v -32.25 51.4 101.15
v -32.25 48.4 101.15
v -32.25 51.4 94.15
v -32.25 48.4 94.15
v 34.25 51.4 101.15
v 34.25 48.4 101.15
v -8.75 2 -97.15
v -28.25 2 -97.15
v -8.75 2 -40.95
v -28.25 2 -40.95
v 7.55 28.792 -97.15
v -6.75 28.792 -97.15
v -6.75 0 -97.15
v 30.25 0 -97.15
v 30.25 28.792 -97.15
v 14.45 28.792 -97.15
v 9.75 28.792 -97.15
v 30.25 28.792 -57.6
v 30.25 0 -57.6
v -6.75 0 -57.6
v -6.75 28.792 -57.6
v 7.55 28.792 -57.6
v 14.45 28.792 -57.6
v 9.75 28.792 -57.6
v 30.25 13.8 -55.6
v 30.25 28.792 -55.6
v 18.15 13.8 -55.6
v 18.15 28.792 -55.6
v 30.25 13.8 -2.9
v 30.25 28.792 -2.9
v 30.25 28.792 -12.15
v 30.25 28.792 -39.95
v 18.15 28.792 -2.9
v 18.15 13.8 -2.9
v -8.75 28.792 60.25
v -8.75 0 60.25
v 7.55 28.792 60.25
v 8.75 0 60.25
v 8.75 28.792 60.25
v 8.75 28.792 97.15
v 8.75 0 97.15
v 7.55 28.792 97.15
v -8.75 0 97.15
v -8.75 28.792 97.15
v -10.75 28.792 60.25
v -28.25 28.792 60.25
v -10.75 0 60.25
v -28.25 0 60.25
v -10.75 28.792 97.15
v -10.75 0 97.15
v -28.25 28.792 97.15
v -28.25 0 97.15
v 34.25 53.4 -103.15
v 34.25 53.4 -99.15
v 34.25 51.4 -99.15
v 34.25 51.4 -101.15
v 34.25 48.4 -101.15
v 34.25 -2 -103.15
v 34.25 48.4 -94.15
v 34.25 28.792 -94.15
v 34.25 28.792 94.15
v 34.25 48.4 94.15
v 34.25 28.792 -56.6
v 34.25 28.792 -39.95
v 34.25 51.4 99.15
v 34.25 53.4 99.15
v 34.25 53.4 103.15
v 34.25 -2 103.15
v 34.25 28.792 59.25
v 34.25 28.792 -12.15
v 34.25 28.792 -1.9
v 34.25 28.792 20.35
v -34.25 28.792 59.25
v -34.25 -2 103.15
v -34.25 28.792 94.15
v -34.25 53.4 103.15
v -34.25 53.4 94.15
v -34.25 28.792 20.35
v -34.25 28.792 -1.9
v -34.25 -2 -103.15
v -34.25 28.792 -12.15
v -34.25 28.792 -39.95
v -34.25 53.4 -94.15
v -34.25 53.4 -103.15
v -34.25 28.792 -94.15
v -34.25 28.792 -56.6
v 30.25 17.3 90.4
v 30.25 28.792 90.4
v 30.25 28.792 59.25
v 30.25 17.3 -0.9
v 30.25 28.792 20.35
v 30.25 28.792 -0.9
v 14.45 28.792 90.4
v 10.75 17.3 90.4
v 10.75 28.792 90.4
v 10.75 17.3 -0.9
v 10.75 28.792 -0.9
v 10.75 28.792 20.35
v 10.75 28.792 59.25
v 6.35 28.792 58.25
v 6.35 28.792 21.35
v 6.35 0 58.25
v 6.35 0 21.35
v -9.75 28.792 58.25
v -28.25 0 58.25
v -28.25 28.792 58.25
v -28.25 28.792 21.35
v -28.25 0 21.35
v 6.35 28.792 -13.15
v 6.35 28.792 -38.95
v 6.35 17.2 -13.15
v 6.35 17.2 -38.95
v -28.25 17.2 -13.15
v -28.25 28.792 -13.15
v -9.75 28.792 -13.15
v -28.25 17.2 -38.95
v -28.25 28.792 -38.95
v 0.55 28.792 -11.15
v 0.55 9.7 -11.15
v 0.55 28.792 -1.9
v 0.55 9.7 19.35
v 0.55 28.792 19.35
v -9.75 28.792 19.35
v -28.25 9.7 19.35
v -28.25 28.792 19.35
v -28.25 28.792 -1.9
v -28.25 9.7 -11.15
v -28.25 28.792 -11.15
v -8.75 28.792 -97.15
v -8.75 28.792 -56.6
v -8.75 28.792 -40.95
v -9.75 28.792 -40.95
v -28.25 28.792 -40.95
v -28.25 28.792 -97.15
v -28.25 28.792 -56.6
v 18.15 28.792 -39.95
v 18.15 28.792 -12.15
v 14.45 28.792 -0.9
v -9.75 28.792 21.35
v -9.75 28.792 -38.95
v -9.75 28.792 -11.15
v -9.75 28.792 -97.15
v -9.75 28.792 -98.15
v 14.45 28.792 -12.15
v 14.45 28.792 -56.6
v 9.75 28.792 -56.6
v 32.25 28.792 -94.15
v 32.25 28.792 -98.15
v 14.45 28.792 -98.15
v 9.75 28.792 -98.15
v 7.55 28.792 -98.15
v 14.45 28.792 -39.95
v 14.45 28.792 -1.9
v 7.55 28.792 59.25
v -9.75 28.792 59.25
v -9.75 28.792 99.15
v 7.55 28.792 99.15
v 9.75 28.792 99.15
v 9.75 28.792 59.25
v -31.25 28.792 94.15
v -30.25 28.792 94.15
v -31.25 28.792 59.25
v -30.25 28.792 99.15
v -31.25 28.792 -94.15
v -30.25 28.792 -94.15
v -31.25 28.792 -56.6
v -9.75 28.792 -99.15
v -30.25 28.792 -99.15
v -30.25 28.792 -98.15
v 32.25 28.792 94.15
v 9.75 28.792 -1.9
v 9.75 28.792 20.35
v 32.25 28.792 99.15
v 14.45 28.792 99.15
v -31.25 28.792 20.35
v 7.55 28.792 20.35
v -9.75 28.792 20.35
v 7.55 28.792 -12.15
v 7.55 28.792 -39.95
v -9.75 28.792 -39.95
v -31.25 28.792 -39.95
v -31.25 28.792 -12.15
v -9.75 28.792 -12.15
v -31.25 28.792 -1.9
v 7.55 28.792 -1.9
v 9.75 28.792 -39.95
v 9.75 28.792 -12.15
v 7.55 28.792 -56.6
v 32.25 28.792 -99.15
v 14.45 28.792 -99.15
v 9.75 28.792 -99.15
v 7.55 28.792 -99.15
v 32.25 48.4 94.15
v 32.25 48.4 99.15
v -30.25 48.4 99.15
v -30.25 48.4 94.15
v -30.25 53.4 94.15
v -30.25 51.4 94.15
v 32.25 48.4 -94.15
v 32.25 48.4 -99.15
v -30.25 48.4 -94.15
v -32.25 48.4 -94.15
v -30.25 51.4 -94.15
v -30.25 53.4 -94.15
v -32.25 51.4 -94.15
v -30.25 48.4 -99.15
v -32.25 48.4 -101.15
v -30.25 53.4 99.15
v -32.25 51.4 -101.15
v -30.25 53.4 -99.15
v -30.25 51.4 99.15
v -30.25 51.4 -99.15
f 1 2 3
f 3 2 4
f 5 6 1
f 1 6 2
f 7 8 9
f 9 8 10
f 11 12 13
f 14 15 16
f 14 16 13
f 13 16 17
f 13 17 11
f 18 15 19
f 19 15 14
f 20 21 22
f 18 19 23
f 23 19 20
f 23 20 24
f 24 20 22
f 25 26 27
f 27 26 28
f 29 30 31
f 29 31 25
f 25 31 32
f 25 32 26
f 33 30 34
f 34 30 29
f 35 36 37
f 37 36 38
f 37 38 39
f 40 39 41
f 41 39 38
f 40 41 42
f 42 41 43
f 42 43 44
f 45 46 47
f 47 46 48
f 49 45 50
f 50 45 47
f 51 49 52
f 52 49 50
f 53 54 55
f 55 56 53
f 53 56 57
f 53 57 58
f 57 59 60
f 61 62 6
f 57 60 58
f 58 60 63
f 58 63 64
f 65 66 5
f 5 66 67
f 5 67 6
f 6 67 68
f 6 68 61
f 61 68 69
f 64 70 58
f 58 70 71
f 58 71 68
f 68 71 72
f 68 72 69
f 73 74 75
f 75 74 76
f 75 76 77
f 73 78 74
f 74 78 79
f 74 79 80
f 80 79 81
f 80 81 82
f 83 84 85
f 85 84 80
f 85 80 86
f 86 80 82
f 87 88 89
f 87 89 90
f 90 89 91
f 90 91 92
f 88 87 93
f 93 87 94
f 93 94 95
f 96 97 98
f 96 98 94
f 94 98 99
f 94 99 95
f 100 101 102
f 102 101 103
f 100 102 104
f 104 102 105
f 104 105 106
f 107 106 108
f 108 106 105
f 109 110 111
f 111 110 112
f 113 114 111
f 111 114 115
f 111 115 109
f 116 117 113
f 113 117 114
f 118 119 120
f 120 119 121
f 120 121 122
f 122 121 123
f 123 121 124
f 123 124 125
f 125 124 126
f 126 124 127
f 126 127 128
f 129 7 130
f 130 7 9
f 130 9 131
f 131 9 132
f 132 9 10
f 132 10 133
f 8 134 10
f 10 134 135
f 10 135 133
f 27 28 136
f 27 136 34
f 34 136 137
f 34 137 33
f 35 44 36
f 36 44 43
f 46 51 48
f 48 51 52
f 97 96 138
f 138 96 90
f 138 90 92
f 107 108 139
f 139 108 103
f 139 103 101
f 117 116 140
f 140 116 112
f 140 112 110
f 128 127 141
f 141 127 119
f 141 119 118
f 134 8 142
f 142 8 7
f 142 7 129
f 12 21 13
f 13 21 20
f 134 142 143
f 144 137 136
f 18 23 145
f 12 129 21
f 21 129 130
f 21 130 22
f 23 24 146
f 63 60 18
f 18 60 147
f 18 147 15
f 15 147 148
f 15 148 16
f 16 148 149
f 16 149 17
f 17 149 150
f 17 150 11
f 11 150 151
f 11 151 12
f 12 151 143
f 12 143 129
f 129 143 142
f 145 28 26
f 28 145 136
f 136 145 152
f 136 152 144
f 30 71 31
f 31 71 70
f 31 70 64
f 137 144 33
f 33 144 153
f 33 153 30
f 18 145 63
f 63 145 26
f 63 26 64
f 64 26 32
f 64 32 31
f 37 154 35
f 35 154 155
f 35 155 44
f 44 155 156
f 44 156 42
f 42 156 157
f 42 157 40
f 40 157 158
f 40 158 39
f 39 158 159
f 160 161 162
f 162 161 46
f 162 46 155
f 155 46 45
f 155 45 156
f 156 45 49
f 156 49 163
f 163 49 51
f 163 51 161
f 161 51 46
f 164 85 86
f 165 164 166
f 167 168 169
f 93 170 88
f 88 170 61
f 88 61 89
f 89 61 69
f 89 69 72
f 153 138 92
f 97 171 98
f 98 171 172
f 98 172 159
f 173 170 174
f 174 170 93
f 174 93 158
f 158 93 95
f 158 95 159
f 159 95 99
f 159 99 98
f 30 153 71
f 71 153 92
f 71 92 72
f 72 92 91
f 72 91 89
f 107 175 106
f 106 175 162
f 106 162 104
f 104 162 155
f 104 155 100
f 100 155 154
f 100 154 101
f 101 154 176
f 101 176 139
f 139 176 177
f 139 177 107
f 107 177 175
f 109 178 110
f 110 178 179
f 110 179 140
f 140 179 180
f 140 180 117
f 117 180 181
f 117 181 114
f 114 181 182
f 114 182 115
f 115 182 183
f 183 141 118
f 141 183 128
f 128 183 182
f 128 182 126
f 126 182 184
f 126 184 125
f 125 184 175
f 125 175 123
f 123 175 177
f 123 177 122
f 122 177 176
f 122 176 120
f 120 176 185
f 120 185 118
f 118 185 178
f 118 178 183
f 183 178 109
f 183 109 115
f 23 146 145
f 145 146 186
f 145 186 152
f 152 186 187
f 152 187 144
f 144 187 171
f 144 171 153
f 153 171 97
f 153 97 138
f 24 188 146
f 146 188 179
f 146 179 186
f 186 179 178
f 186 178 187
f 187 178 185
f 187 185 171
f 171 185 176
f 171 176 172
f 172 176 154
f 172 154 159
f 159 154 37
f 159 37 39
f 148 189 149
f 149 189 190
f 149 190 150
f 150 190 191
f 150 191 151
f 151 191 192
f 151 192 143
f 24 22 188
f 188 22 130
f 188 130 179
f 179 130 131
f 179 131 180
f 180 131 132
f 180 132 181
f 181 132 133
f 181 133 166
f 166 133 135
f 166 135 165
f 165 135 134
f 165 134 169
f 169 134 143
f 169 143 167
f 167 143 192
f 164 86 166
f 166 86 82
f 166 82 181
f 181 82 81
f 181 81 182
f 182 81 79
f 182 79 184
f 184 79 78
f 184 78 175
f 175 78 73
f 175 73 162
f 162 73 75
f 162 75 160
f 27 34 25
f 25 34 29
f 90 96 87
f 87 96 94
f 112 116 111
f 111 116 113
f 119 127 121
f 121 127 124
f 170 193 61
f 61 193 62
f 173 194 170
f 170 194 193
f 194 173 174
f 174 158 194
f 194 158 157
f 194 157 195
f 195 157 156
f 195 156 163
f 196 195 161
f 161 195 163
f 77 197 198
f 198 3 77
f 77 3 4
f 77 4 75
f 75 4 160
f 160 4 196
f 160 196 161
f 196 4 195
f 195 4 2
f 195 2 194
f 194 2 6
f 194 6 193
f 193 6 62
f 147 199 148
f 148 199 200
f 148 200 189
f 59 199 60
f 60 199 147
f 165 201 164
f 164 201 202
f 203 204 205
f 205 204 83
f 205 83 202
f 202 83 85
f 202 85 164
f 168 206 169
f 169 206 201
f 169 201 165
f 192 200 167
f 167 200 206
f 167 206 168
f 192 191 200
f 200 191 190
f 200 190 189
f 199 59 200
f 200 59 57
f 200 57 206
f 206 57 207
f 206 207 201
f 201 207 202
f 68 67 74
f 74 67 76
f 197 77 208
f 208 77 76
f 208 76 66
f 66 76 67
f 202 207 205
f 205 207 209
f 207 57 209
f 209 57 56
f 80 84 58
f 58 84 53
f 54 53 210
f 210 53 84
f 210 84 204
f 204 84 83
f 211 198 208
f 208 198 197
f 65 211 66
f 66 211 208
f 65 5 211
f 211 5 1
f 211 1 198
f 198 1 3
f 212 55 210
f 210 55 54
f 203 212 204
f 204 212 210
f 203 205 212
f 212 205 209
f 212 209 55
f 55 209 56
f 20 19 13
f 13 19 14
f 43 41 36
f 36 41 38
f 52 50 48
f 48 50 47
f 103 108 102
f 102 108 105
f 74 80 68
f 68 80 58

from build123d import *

# Parameters (mm, degrees)
SKETCH1_4_W          = 19.5
SKETCH1_4_H          = 56.2
BOSS_EXTRUDE3_DEPTH  = 2
SKETCH1_5_W          = 12.1
SKETCH1_5_H          = 52.7
BOSS_EXTRUDE4_DEPTH  = 13.8
BOSS_EXTRUDE5_DEPTH  = 17.3
SKETCH1_8_W          = 34.6
SKETCH1_8_H          = 25.8
BOSS_EXTRUDE7_DEPTH  = 17.2
SKETCH1_9_W          = 28.8
SKETCH1_9_H          = 30.5
BOSS_EXTRUDE8_DEPTH  = 9.7
SKETCH1_10_W         = 17.5
SKETCH1_10_H         = 36.9
SKETCH1_10_W_2       = 34.6
SKETCH1_10_W_3       = 28.8
SKETCH1_10_H_2       = 30.5
SKETCH1_10_H_3       = 25.8
SKETCH1_10_W_4       = 19.5
SKETCH1_10_H_4       = 56.2
SKETCH1_10_W_5       = 12.1
SKETCH1_10_H_5       = 52.7
SKETCH1_10_W_6       = 37
SKETCH1_10_H_6       = 39.55
BOSS_EXTRUDE9_DEPTH  = 28.791978309
BOSS_EXTRUDE10_DEPTH = 48.4
BOSS_EXTRUDE11_DEPTH = 53.4
BOSS_EXTRUDE12_DEPTH = 2
SKETCH1_13_W         = 68.5
SKETCH1_13_H         = 206.3
BOSS_EXTRUDE13_DEPTH = 2


with BuildPart() as part:
    # Sketch1<4> → Boss-Extrude3 (new body)
    with BuildSketch(Plane(origin=(0, 0, 0), x_dir=(1, 0, 0), z_dir=(0, 1, 0))):
        with Locations((-18.5, 69.05)):
            Rectangle(SKETCH1_4_W, SKETCH1_4_H)
    extrude(amount=BOSS_EXTRUDE3_DEPTH)



with BuildPart() as body_2:
    # Sketch1<5> → Boss-Extrude4 (new body)
    with BuildSketch(Plane(origin=(0, 0, 0), x_dir=(1, 0, 0), z_dir=(0, 1, 0))):
        with Locations((24.2, 29.25)):
            Rectangle(SKETCH1_5_W, SKETCH1_5_H)
    extrude(amount=BOSS_EXTRUDE4_DEPTH)


with BuildPart() as body_3:
    # Sketch1 → Boss-Extrude5 (new body)
    with BuildSketch(Plane(origin=(0, 0, 0), x_dir=(1, 0, 0), z_dir=(0, 1, 0))):
        Polygon((10.75, 0.9), (10.75, -90.4), (29.25, -90.4), (30.25, -90.4), (30.25, 0.9), align=None)
    extrude(amount=BOSS_EXTRUDE5_DEPTH)


with BuildPart() as body_4:
    # Sketch1<8> → Boss-Extrude7 (new body)
    with BuildSketch(Plane(origin=(0, 0, 0), x_dir=(1, 0, 0), z_dir=(0, 1, 0))):
        with Locations((-10.95, 26.05)):
            Rectangle(SKETCH1_8_W, SKETCH1_8_H)
    extrude(amount=BOSS_EXTRUDE7_DEPTH)


with BuildPart() as body_5:
    # Sketch1<9> → Boss-Extrude8 (new body)
    with BuildSketch(Plane(origin=(0, 0, 0), x_dir=(1, 0, 0), z_dir=(0, 1, 0))):
        with Locations((-13.85, -4.1)):
            Rectangle(SKETCH1_9_W, SKETCH1_9_H)
    extrude(amount=BOSS_EXTRUDE8_DEPTH)


with BuildPart() as part_1:
    add(part.part)

    add(body_2.part)  # Boss-Extrude9 merges body 2

    add(body_3.part)  # Boss-Extrude9 merges body 3

    add(body_4.part)  # Boss-Extrude9 merges body 4

    add(body_5.part)  # Boss-Extrude9 merges body 5
    # Sketch1<10> → Boss-Extrude9 (add)
    with BuildSketch(Plane(origin=(0, 0, 0), x_dir=(1, 0, 0), z_dir=(0, 1, 0))):
        Polygon((34.25, -94.15), (34.25, 94.15), (32.25, 94.15), (32.25, 99.15), (-30.25, 99.15), (-30.25, 94.15), (-34.25, 94.15), (-34.25, -94.15), (-30.25, -94.15), (-30.25, -99.15), (32.25, -99.15), (32.25, -94.15), align=None)
        with Locations((-19.5, -78.7)):
            Rectangle(SKETCH1_10_W, SKETCH1_10_H, mode=Mode.SUBTRACT)
        with Locations((-10.95, -39.8)):
            Rectangle(SKETCH1_10_W_2, SKETCH1_10_H, mode=Mode.SUBTRACT)
        with Locations((-13.85, -4.1)):
            Rectangle(SKETCH1_10_W_3, SKETCH1_10_H_2, mode=Mode.SUBTRACT)
        with Locations((0, -78.7)):
            Rectangle(SKETCH1_10_W, SKETCH1_10_H, mode=Mode.SUBTRACT)
        Polygon((29.25, -90.4), (10.75, -90.4), (10.75, 0.9), (30.25, 0.9), (30.25, -90.4), align=None, mode=Mode.SUBTRACT)
        with Locations((-10.95, 26.05)):
            Rectangle(SKETCH1_10_W_2, SKETCH1_10_H_3, mode=Mode.SUBTRACT)
        with Locations((-18.5, 69.05)):
            Rectangle(SKETCH1_10_W_4, SKETCH1_10_H_4, mode=Mode.SUBTRACT)
        with Locations((24.2, 29.25)):
            Rectangle(SKETCH1_10_W_5, SKETCH1_10_H_5, mode=Mode.SUBTRACT)
        with Locations((11.75, 77.375)):
            Rectangle(SKETCH1_10_W_6, SKETCH1_10_H_6, mode=Mode.SUBTRACT)
    extrude(amount=BOSS_EXTRUDE9_DEPTH)

    # Sketch1<11> → Boss-Extrude10 (add)
    with BuildSketch(Plane(origin=(0, 0, 0), x_dir=(1, 0, 0), z_dir=(0, 1, 0))):
        Polygon((34.25, 94.15), (34.25, 101.15), (-32.25, 101.15), (-32.25, 94.15), (-30.25, 94.15), (-30.25, 99.15), (32.25, 99.15), (32.25, 94.15), align=None)
        Polygon((34.25, -101.15), (34.25, -94.15), (32.25, -94.15), (32.25, -99.15), (-30.25, -99.15), (-30.25, -94.15), (-32.25, -94.15), (-32.25, -101.15), align=None)
    extrude(amount=BOSS_EXTRUDE10_DEPTH)

    # Sketch1<12> → Boss-Extrude11 (add)
    with BuildSketch(Plane(origin=(0, 0, 0), x_dir=(1, 0, 0), z_dir=(0, 1, 0))):
        Polygon((-32.25, 101.15), (34.25, 101.15), (34.25, 103.15), (-34.25, 103.15), (-34.25, 94.15), (-32.25, 94.15), align=None)
        Polygon((-32.25, -101.15), (-32.25, -94.15), (-34.25, -94.15), (-34.25, -103.15), (34.25, -103.15), (34.25, -101.15), align=None)
    extrude(amount=BOSS_EXTRUDE11_DEPTH)

    # Sketch2 → Boss-Extrude12 (add)
    with BuildSketch(Plane(origin=(0, 53.4, 0), x_dir=(1, 0, 0), z_dir=(0, 1, 0))):
        Polygon((-32.25, -94.15), (-32.25, -101.15), (34.25, -101.15), (34.25, -99.15), (-30.25, -99.15), (-30.25, -94.15), align=None)
        Polygon((-32.25, 94.15), (-32.25, 101.15), (34.25, 101.15), (34.25, 99.15), (-30.25, 99.15), (-30.25, 94.15), align=None)
    extrude(amount=-BOSS_EXTRUDE12_DEPTH)

    # Sketch1<13> → Boss-Extrude13 (add)
    with BuildSketch(Plane(origin=(0, 0, 0), x_dir=(1, 0, 0), z_dir=(0, 1, 0))):
        Rectangle(SKETCH1_13_W, SKETCH1_13_H)
    extrude(amount=-BOSS_EXTRUDE13_DEPTH)


solid = part_1.part
